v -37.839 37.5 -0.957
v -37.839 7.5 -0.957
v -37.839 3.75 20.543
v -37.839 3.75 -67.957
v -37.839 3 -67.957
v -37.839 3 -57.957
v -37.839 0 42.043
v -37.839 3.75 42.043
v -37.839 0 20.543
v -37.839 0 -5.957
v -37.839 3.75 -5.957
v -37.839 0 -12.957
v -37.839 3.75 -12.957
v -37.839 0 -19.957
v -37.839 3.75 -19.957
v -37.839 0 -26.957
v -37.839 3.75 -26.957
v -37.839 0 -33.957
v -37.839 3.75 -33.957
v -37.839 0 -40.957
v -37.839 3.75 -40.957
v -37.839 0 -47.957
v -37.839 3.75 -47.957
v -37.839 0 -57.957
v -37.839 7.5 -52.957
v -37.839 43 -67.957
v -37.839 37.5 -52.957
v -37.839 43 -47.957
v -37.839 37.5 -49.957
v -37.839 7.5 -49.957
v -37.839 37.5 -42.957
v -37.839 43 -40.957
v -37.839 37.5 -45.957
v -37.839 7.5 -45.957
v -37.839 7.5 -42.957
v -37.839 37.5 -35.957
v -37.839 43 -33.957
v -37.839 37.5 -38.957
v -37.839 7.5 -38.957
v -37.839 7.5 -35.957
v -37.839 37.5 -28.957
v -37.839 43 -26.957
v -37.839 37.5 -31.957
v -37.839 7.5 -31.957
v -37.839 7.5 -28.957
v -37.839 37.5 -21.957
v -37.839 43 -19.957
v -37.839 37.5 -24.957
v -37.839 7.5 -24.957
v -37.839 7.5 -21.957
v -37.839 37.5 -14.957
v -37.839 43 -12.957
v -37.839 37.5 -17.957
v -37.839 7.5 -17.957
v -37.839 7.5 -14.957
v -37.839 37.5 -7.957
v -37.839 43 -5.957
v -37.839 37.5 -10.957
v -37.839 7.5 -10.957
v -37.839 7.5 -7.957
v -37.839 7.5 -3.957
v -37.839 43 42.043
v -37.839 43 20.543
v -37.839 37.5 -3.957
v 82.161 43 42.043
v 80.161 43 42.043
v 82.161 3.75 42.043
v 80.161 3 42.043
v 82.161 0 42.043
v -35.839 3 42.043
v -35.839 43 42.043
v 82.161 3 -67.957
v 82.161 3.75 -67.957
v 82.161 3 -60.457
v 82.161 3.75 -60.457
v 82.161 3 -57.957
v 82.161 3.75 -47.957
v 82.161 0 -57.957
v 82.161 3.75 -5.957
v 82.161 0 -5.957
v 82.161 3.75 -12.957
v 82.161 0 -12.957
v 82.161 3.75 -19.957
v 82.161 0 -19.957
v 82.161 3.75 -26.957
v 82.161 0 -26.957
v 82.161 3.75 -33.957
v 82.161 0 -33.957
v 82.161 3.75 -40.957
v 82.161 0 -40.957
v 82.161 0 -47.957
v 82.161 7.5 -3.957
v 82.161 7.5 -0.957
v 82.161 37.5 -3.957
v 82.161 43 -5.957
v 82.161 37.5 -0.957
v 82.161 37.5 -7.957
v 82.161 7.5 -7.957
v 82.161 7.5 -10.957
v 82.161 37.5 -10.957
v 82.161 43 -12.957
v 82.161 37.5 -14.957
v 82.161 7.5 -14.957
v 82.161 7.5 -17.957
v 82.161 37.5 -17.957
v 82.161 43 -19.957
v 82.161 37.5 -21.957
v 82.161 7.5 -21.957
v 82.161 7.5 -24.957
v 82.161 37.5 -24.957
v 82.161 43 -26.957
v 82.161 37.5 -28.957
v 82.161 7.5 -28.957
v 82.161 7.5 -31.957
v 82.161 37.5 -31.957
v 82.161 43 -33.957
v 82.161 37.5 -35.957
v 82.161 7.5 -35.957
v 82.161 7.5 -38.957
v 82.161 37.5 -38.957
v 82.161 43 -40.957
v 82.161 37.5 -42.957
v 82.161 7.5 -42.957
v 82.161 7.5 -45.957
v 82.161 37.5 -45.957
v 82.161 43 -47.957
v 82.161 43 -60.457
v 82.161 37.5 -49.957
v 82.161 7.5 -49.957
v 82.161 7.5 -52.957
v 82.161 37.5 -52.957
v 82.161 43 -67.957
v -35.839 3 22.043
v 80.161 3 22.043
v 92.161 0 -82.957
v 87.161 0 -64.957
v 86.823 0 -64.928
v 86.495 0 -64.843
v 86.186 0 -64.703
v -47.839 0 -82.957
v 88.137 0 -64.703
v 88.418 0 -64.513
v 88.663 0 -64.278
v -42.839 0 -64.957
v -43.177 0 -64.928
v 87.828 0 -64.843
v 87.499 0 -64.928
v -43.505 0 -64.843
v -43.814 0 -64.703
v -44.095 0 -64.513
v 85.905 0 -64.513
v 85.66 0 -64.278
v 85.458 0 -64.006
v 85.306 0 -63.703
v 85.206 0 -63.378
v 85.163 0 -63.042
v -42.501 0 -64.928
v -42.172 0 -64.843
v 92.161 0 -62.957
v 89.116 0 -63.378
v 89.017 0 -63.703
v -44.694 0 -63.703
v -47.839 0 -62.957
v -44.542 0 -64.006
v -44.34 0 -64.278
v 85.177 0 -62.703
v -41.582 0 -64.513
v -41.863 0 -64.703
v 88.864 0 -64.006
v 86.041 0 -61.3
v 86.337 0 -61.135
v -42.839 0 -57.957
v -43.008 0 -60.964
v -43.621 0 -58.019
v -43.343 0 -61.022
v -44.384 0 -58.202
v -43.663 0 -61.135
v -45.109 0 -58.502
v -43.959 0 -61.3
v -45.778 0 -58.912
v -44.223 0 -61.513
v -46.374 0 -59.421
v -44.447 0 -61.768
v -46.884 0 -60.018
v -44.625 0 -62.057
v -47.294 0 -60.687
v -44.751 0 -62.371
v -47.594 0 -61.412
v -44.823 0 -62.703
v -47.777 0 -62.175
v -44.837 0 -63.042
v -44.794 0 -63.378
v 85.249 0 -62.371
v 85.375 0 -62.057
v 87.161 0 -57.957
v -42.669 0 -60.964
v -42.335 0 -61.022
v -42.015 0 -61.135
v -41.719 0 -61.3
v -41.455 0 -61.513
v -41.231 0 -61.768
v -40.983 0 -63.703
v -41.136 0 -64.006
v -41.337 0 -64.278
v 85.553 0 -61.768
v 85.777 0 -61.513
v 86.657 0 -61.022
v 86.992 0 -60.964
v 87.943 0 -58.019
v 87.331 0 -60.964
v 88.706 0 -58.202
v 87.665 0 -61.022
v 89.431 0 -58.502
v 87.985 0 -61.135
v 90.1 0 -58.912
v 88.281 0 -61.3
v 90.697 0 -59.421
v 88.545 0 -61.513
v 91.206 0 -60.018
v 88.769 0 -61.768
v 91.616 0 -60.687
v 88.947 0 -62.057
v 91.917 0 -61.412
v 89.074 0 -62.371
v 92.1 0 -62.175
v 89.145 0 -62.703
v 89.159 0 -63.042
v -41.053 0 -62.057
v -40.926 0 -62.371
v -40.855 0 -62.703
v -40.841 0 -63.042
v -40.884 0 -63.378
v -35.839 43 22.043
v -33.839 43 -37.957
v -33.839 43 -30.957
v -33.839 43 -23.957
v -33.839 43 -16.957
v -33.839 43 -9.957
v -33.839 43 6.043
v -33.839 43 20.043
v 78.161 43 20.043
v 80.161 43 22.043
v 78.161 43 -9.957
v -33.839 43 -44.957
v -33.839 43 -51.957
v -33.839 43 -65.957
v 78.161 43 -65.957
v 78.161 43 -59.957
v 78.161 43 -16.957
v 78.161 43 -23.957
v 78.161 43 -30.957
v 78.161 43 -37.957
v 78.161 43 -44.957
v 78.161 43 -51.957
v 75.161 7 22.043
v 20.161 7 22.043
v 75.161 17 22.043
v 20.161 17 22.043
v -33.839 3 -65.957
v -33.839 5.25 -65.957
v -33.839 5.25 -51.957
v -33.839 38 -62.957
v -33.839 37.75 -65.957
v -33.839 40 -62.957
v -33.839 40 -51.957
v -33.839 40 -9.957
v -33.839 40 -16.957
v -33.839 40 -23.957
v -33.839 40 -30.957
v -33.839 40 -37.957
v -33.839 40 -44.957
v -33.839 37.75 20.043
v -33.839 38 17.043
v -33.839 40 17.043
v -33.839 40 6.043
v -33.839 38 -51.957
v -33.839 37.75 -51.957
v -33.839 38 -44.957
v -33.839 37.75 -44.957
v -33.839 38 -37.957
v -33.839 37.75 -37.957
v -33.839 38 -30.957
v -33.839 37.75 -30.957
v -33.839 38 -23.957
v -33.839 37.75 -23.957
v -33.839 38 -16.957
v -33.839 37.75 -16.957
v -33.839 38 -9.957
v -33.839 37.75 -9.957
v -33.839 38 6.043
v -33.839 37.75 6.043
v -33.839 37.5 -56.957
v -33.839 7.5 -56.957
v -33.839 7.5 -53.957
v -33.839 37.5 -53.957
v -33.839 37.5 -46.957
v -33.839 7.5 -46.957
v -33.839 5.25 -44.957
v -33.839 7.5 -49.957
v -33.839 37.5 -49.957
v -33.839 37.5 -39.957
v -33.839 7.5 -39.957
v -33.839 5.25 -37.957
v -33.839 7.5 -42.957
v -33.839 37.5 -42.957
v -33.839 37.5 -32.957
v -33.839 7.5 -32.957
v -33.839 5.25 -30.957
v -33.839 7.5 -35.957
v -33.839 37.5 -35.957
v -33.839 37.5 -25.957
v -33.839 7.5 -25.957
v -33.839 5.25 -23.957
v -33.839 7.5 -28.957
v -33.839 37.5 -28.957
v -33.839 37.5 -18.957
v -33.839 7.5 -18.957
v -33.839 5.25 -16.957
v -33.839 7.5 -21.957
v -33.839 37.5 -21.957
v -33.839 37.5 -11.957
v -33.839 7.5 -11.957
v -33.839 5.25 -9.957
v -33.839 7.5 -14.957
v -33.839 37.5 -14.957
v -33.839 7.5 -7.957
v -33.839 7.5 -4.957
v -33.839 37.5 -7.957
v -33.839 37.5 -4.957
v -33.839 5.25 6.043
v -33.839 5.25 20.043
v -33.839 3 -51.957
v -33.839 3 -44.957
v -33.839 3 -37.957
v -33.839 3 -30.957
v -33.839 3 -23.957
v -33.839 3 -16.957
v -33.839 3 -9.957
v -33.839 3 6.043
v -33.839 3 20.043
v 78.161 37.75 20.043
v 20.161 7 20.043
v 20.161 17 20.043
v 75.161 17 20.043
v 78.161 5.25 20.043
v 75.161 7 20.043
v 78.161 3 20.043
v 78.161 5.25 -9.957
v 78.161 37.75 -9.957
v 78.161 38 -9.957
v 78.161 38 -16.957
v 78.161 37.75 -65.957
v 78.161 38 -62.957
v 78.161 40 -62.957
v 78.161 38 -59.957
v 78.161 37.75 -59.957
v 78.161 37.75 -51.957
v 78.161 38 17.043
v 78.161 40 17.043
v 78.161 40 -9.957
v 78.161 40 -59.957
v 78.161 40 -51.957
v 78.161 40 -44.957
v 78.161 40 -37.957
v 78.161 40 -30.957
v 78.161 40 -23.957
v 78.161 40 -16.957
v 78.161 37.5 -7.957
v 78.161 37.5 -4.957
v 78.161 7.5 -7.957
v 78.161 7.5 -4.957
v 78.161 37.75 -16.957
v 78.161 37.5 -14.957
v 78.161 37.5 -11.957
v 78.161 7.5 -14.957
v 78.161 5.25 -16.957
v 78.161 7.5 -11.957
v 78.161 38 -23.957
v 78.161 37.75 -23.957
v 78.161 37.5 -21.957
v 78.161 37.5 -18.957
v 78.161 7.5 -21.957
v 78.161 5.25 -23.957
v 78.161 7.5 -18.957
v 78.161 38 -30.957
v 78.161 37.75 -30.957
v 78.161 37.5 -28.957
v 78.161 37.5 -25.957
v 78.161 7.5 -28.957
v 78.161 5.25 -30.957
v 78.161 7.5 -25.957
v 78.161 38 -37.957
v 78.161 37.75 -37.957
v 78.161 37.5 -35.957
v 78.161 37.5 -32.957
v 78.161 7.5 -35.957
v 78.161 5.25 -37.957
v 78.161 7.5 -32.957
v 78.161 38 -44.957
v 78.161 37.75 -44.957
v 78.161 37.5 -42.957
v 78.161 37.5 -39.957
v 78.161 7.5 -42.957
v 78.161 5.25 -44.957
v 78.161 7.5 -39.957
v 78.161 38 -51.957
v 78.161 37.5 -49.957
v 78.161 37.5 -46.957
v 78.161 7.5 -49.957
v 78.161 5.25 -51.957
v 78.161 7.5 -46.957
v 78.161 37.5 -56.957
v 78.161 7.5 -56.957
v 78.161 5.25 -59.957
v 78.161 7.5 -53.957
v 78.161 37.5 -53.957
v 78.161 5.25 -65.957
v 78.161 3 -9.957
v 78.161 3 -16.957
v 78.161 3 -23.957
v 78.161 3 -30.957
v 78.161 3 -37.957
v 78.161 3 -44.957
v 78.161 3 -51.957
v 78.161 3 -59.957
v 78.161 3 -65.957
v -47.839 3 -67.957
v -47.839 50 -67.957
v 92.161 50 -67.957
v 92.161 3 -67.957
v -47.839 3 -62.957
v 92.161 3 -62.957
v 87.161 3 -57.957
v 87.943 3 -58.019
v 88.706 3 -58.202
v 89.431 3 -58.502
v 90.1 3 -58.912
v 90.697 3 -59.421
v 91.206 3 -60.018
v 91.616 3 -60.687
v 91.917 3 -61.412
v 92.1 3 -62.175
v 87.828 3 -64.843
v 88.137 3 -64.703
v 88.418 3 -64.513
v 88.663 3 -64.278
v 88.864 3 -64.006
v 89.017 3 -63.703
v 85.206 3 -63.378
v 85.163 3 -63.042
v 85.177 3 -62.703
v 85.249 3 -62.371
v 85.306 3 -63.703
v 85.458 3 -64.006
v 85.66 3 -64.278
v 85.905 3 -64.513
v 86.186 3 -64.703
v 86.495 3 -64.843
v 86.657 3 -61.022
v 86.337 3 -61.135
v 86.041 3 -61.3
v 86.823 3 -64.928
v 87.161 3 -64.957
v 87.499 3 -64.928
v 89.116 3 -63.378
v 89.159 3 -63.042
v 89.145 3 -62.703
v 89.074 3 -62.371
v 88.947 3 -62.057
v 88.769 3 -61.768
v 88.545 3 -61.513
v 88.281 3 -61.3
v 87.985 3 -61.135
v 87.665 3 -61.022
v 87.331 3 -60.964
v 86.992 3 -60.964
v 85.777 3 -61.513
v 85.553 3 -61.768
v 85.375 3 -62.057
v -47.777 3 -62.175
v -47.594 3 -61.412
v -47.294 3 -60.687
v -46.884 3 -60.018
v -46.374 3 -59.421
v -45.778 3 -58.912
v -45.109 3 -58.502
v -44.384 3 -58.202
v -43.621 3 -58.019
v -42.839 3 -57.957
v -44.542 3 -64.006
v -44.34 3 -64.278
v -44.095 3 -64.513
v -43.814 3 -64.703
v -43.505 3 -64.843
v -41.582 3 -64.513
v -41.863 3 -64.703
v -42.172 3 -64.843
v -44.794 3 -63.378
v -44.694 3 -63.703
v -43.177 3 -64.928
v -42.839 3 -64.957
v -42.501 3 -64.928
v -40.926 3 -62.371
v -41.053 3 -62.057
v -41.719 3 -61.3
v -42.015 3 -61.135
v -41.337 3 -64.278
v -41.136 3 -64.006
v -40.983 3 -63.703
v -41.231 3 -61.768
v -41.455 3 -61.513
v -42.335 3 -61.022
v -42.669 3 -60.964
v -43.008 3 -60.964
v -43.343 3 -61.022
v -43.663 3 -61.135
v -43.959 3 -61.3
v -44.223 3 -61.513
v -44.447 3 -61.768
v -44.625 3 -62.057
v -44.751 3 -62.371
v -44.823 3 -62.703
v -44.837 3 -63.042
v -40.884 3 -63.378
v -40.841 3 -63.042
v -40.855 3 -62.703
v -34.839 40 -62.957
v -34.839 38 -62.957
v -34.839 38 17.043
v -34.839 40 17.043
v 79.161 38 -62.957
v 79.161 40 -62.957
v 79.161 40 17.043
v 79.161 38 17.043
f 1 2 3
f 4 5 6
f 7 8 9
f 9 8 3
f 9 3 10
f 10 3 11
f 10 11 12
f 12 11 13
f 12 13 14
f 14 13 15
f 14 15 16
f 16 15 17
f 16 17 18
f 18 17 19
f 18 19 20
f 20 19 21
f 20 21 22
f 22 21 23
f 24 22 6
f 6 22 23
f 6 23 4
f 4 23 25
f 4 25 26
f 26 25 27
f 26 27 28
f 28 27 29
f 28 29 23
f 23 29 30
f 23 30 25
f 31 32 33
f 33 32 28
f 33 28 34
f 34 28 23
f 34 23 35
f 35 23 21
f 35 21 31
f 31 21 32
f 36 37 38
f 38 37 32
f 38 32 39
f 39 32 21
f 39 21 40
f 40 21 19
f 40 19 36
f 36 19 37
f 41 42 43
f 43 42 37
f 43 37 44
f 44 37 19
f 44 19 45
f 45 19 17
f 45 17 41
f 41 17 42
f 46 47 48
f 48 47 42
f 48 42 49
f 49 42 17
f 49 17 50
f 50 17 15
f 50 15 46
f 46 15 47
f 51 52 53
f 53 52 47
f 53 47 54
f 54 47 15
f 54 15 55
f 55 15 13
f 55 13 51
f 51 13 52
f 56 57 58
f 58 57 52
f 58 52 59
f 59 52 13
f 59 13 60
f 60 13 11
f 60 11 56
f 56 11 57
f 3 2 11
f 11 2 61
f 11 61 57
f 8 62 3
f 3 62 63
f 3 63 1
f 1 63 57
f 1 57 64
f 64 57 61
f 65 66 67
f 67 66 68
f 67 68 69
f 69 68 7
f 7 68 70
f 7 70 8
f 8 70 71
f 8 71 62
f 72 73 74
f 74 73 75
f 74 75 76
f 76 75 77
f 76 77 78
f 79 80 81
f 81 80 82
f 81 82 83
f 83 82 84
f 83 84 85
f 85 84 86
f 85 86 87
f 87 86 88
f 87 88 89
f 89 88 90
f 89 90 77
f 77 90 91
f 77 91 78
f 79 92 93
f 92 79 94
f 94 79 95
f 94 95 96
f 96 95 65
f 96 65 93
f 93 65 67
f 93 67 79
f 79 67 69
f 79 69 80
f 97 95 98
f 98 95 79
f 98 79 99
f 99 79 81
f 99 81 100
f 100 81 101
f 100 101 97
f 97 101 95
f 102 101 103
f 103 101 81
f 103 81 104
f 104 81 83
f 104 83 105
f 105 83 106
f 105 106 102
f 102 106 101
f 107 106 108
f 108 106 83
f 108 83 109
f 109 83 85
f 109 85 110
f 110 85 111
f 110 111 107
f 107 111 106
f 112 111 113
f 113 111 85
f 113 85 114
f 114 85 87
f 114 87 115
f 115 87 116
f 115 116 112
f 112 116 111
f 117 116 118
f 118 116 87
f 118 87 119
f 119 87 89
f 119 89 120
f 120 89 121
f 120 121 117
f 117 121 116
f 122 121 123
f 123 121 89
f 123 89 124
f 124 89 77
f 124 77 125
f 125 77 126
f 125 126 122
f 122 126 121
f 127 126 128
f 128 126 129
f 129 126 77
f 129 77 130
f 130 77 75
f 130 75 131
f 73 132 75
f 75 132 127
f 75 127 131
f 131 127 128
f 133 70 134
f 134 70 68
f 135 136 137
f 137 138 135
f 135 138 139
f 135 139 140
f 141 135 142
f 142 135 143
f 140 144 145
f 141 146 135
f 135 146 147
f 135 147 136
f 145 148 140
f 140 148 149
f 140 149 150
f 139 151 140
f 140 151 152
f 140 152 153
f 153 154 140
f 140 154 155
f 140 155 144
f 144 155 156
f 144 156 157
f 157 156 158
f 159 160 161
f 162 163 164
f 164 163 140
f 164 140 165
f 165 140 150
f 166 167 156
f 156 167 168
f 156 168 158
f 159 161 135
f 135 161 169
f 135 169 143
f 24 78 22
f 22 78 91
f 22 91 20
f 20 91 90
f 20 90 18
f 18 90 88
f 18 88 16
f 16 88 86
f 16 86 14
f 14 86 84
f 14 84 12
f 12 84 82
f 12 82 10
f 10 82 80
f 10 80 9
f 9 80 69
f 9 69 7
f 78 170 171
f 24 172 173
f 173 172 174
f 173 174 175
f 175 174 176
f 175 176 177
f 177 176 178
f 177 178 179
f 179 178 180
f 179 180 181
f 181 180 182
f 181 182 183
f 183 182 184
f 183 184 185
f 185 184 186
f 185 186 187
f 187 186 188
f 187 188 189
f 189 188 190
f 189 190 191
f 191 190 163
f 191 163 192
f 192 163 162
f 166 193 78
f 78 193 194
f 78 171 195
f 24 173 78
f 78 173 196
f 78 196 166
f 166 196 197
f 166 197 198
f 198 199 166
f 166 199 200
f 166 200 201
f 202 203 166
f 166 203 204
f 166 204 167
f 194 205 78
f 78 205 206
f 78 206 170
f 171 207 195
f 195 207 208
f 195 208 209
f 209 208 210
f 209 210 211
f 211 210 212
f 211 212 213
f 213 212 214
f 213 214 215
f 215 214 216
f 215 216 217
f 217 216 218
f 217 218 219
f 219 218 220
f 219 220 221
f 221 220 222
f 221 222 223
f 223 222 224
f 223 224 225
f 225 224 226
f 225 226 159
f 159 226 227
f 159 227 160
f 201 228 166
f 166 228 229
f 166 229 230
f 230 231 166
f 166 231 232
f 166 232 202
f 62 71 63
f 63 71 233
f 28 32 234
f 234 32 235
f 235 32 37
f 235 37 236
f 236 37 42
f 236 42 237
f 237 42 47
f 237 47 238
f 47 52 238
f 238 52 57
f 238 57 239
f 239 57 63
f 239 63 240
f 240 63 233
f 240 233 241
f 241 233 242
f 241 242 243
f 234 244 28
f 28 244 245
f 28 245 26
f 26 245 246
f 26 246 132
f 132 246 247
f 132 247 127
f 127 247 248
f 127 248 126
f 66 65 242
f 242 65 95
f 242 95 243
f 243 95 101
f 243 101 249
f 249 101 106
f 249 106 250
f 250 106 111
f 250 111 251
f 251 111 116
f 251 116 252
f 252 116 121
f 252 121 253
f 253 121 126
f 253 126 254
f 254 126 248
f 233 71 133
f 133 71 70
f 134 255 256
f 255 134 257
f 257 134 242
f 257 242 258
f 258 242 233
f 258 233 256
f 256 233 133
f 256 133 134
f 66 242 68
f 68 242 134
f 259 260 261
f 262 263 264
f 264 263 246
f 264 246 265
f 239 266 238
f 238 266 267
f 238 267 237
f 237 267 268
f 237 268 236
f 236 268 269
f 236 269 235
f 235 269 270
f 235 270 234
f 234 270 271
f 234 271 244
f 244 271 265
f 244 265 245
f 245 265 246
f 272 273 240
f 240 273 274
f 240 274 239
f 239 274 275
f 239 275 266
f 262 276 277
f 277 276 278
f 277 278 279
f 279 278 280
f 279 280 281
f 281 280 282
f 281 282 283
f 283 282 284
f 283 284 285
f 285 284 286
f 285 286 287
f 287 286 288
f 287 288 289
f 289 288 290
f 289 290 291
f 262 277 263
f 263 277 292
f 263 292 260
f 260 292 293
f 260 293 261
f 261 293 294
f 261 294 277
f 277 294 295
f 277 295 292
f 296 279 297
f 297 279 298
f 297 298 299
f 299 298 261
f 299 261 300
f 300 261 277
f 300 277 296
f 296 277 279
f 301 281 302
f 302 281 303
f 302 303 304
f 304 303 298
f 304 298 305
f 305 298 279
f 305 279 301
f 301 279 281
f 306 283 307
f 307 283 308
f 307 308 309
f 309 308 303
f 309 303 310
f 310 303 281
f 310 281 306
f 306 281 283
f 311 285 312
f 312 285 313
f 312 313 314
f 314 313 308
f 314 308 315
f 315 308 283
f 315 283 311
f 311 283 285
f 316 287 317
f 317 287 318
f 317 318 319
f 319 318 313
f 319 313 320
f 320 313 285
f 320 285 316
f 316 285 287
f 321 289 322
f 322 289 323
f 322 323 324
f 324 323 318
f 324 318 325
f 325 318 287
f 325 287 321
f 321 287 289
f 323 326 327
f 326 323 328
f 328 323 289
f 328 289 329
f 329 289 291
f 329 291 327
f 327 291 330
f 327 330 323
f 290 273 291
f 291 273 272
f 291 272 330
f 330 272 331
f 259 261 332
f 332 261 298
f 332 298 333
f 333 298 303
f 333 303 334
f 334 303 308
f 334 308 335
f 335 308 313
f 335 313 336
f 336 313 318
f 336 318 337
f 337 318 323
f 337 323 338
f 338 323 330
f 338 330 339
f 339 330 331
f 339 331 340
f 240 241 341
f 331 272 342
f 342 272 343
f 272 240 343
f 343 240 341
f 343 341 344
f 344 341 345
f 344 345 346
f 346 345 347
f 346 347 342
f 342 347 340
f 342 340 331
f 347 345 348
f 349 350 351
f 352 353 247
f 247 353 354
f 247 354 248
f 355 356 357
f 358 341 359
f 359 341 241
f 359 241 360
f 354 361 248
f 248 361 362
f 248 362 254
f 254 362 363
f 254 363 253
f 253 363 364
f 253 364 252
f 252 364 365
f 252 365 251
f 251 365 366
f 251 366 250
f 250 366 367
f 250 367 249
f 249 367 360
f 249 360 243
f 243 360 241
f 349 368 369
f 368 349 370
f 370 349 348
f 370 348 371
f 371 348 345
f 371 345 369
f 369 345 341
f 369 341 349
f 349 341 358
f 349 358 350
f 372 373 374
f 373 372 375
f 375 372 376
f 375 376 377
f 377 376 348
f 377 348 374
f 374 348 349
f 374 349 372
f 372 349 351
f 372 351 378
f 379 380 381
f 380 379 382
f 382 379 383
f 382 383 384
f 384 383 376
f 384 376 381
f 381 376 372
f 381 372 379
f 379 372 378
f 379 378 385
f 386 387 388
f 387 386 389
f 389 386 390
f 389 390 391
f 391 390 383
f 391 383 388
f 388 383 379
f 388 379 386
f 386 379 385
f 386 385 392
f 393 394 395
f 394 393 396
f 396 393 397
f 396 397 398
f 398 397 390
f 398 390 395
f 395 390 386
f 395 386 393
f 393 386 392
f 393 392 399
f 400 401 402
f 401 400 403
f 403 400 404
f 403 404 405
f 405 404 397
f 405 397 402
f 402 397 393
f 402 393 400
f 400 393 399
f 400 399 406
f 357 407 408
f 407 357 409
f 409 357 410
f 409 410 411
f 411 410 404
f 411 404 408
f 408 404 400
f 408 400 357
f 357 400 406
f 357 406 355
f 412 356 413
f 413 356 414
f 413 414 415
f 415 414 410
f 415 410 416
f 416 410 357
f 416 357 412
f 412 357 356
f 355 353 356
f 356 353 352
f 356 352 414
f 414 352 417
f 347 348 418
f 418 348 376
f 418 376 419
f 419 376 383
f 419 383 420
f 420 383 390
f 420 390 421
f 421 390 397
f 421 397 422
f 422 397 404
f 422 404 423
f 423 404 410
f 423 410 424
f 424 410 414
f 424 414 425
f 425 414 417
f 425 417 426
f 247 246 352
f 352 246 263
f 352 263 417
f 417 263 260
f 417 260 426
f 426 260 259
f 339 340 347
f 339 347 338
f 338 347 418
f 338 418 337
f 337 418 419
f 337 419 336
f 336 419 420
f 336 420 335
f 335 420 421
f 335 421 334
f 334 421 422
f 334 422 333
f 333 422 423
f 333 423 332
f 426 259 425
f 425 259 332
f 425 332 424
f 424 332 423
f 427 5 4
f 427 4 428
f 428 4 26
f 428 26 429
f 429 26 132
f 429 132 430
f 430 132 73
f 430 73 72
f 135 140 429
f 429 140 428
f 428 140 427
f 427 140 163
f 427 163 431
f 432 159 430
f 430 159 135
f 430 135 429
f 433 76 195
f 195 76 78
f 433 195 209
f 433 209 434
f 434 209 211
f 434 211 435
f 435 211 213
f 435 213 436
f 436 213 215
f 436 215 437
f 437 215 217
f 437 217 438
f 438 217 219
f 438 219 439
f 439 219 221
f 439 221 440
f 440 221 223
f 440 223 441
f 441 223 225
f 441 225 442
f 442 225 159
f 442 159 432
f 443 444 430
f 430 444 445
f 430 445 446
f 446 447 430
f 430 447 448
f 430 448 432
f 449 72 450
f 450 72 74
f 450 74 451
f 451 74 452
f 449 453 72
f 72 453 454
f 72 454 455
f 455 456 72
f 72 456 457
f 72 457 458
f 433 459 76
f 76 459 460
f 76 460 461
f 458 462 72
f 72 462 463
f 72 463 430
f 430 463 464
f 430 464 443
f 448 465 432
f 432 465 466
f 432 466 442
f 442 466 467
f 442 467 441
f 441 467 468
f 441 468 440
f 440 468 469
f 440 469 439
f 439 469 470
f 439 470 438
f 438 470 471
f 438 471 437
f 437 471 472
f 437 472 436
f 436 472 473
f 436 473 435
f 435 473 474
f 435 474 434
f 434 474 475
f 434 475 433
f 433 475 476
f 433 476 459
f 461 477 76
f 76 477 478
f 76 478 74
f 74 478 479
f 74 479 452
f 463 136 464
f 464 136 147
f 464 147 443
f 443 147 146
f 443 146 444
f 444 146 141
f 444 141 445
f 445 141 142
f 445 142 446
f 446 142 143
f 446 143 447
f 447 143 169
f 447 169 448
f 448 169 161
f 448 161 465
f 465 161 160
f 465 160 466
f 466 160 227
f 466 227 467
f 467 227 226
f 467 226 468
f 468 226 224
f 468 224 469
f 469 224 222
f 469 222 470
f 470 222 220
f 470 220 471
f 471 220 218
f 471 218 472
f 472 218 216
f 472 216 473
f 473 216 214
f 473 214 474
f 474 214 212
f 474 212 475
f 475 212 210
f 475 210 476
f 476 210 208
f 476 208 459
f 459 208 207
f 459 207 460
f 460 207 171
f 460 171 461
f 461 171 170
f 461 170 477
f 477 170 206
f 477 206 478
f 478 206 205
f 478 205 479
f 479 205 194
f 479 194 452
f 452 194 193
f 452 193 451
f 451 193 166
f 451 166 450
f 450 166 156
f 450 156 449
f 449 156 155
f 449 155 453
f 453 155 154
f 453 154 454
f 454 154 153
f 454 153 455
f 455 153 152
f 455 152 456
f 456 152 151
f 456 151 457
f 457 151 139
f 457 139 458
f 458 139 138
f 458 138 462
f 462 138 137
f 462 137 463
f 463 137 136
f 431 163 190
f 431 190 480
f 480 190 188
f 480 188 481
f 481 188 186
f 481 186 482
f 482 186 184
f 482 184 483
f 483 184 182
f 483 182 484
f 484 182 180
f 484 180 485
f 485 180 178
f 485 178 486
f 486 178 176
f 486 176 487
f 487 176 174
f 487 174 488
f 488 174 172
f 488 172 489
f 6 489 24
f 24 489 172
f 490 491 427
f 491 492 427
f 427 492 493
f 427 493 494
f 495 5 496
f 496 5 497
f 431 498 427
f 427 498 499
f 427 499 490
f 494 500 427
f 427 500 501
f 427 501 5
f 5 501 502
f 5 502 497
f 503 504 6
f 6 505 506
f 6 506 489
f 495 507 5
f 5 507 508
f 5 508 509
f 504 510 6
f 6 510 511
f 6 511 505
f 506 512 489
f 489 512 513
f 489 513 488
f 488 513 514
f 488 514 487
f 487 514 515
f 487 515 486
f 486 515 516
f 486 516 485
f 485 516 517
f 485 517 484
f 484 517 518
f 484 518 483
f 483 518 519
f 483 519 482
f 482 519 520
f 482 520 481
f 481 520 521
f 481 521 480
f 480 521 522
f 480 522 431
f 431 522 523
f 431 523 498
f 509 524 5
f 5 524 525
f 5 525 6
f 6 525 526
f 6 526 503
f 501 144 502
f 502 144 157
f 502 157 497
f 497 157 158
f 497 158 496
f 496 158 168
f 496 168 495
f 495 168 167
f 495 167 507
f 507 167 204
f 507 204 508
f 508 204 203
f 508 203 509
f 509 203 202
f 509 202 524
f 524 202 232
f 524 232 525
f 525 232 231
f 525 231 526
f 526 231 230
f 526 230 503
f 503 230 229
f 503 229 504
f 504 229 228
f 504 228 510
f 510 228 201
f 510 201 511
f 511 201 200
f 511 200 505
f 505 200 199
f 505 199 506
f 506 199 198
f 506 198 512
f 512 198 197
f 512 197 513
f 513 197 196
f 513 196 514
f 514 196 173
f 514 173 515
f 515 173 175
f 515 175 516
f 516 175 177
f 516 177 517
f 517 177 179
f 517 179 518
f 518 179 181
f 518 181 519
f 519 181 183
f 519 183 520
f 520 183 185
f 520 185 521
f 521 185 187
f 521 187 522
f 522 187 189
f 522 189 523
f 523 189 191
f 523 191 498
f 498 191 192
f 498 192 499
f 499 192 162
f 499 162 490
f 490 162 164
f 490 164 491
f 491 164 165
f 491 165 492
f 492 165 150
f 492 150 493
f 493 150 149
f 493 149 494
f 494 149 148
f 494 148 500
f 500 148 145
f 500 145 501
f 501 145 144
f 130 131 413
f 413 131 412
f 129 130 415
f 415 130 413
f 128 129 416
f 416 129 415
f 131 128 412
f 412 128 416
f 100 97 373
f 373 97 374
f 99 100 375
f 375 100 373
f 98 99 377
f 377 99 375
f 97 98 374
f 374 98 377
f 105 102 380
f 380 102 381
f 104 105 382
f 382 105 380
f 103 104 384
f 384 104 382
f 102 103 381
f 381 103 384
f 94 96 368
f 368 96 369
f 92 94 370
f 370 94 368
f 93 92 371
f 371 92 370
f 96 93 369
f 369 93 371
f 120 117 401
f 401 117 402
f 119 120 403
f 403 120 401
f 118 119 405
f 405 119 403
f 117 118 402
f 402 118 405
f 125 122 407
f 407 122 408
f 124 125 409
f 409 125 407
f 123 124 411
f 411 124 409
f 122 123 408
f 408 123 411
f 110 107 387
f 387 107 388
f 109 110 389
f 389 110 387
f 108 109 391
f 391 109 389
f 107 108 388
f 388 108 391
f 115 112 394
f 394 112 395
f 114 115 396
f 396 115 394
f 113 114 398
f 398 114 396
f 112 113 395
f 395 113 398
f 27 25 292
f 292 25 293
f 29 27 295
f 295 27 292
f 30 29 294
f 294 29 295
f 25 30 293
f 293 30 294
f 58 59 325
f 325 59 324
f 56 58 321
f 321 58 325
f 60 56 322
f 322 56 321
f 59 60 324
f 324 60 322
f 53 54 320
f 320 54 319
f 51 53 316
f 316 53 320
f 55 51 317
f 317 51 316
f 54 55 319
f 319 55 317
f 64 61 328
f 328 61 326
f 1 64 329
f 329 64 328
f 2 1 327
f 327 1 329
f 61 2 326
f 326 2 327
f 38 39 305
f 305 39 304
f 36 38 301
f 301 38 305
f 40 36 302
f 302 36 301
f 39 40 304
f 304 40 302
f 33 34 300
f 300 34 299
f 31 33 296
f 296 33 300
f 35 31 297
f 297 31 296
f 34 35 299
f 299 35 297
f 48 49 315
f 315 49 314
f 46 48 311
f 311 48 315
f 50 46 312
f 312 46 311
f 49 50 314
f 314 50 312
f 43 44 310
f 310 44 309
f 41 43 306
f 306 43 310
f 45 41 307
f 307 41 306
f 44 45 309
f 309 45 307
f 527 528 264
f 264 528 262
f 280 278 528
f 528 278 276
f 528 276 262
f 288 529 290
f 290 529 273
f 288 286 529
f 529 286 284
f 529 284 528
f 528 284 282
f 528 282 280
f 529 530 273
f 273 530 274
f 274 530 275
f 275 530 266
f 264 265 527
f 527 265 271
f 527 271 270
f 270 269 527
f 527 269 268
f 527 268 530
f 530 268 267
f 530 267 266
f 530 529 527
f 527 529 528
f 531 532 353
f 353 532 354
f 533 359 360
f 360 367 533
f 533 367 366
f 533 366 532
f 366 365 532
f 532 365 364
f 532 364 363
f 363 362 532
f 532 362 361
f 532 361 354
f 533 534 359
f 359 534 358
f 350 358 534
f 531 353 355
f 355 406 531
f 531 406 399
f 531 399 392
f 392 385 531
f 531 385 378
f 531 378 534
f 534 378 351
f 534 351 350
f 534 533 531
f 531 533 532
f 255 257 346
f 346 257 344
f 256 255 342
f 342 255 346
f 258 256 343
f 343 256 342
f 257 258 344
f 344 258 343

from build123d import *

# Parameters (mm, degrees)
SKETCH1_W                       = 120
SKETCH1_H                       = 110
BOSS_EXTRUDE1_DEPTH             = 3
SKETCH2_W                       = 112
SKETCH2_H                       = 86
BOSS_EXTRUDE2_DEPTH             = 40
BOSS_EXTRUDE3_DEPTH             = 10
BOSS_EXTRUDE3_DEPTH_BACK        = 130
SKIZZE2_R                       = 2
AUFSATZ_LINEAR_AUSTRAGEN1_DEPTH = 3
SKIZZE3_W                       = 3
SKIZZE3_H                       = 30
SCHNITT_LINEAR_AUSTRAGEN1_DEPTH = 13
SKIZZE8_W                       = 3
SKIZZE8_H                       = 30
SCHNITT_LINEAR_AUSTRAGEN2_DEPTH = 13
SKIZZE10_W                      = 80
SKIZZE10_H                      = 2
SCHNITT_LINEAR_AUSTRAGEN3_DEPTH = 1
SKIZZE11_W                      = 80
SKIZZE11_H                      = 2
SCHNITT_LINEAR_AUSTRAGEN4_DEPTH = 1
SKIZZE12_W                      = 55
SKIZZE12_H                      = 10
SCHNITT_LINEAR_AUSTRAGEN5_DEPTH = 31


with BuildPart() as part:
    # Sketch1 → Boss-Extrude1 (new body)
    with BuildSketch(Plane(origin=(0, 0, 0), x_dir=(1, 0, 0), z_dir=(0, 1, 0))):
        with Locations((22.161290323, 12.956989247)):
            Rectangle(SKETCH1_W, SKETCH1_H)
    extrude(amount=BOSS_EXTRUDE1_DEPTH)

    # Sketch2 → Boss-Extrude2 (add)
    with BuildSketch(Plane(origin=(0, 3, 0), x_dir=(1, 0, 0), z_dir=(0, 1, 0))):
        Polygon((-37.838709677, 67.956989247), (-37.838709677, -42.043010753), (-35.838709677, -42.043010753), (-35.838709677, -22.043010753), (80.161290323, -22.043010753), (80.161290323, -42.043010753), (82.161290323, -42.043010753), (82.161290323, 67.956989247), align=None)
        with Locations((22.161290323, 22.956989247)):
            Rectangle(SKETCH2_W, SKETCH2_H, mode=Mode.SUBTRACT)
    extrude(amount=BOSS_EXTRUDE2_DEPTH)

    # Sketch3 → Boss-Extrude3 (add, two sides: drawn at the far end of the back side and taken through both)
    with BuildSketch(Plane(origin=(82.161290323, 0, 0), x_dir=(0, 0, -1), z_dir=(1, 0, 0)).offset(-BOSS_EXTRUDE3_DEPTH_BACK)):
        Polygon((67.956989247, 50), (82.956989247, 0), (67.956989247, 0), align=None)
    extrude(amount=BOSS_EXTRUDE3_DEPTH + BOSS_EXTRUDE3_DEPTH_BACK)

    # Skizze2 → Aufsatz-Linear austragen1 (add)
    # profile 1 of 2: a face of its own
    with BuildSketch(Plane.XZ):
        with BuildLine():
            Line((82.161290323, -67.956989247), (92.161290323, -67.956989247))
            Line((92.161290323, -67.956989247), (92.161290323, -62.956989247))
            ThreePointArc((92.161290323, -62.956989247), (90.696824229, -59.421455341), (87.161290323, -57.956989247))
            Line((87.161290323, -57.956989247), (82.161290323, -57.956989247))
            Line((82.161290323, -57.956989247), (82.161290323, -67.956989247))
        make_face()
        with Locations(Location((87.161290323, -62.956989247, 0), (0, 0, 270))):
            Circle(SKIZZE2_R, mode=Mode.SUBTRACT)
    # profile 2 of 2: a face of its own
    with BuildSketch(Plane.XZ):
        with BuildLine():
            Line((-37.838709677, -67.956989247), (-47.838709677, -67.956989247))
            Line((-47.838709677, -67.956989247), (-47.838709677, -62.956989247))
            ThreePointArc((-47.838709677, -62.956989247), (-46.374243583, -59.421455341), (-42.838709677, -57.956989247))
            Line((-42.838709677, -57.956989247), (-37.838709677, -57.956989247))
            Line((-37.838709677, -57.956989247), (-37.838709677, -67.956989247))
        make_face()
        with Locations(Location((-42.838709677, -62.956989247, 0), (0, 0, 270))):
            Circle(SKIZZE2_R, mode=Mode.SUBTRACT)
    extrude(amount=-AUFSATZ_LINEAR_AUSTRAGEN1_DEPTH)

    # Skizze3 → Schnitt-Linear austragen1 (cut, along a direction that is not the sketch's normal)
    with BuildSketch(Plane(origin=(82.161290323, 0, 0), x_dir=(0, 0, -1), z_dir=(1, 0, 0))):
        with Locations((51.456989247, 22.5)):
            Rectangle(SKIZZE3_W, SKIZZE3_H)
        with Locations((44.456989247, 22.5)):
            Rectangle(SKIZZE3_W, SKIZZE3_H)
        with Locations((37.456989247, 22.5)):
            Rectangle(SKIZZE3_W, SKIZZE3_H)
        with Locations((30.456989247, 22.5)):
            Rectangle(SKIZZE3_W, SKIZZE3_H)
        with Locations((23.456989247, 22.5)):
            Rectangle(SKIZZE3_W, SKIZZE3_H)
        with Locations((16.456989247, 22.5)):
            Rectangle(SKIZZE3_W, SKIZZE3_H)
        with Locations((9.456989247, 22.5)):
            Rectangle(SKIZZE3_W, SKIZZE3_H)
        with Locations((2.456989247, 22.5)):
            Rectangle(SKIZZE3_W, SKIZZE3_H)
    extrude(amount=-SCHNITT_LINEAR_AUSTRAGEN1_DEPTH, dir=(0.7071067811865519, 0, 0.7071067811865432), mode=Mode.SUBTRACT)

    # Skizze8 → Schnitt-Linear austragen2 (cut, along a direction that is not the sketch's normal)
    with BuildSketch(Plane.ZY.offset(37.838709677)):
        with Locations((-51.456989247, 22.5)):
            Rectangle(SKIZZE8_W, SKIZZE8_H)
        with Locations((-44.456989247, 22.5)):
            Rectangle(SKIZZE8_W, SKIZZE8_H)
        with Locations((-37.456989247, 22.5)):
            Rectangle(SKIZZE8_W, SKIZZE8_H)
        with Locations((-30.456989247, 22.5)):
            Rectangle(SKIZZE8_W, SKIZZE8_H)
        with Locations((-23.456989247, 22.5)):
            Rectangle(SKIZZE8_W, SKIZZE8_H)
        with Locations((-16.456989247, 22.5)):
            Rectangle(SKIZZE8_W, SKIZZE8_H)
        with Locations((-9.456989247, 22.5)):
            Rectangle(SKIZZE8_W, SKIZZE8_H)
        with Locations((-2.456989247, 22.5)):
            Rectangle(SKIZZE8_W, SKIZZE8_H)
    extrude(amount=-SCHNITT_LINEAR_AUSTRAGEN2_DEPTH, dir=(-0.7071067811865462, 0, 0.7071067811865488), mode=Mode.SUBTRACT)

    # Skizze10 → Schnitt-Linear austragen3 (cut)
    with BuildSketch(Plane(origin=(-33.838709677, 0, 0), x_dir=(0, 0, -1), z_dir=(1, 0, 0))):
        with Locations((22.956989247, 39)):
            Rectangle(SKIZZE10_W, SKIZZE10_H)
    extrude(amount=-SCHNITT_LINEAR_AUSTRAGEN3_DEPTH, mode=Mode.SUBTRACT)

    # Skizze11 → Schnitt-Linear austragen4 (cut)
    with BuildSketch(Plane.ZY.offset(-78.161290323)):
        with Locations((-22.956989247, 39)):
            Rectangle(SKIZZE11_W, SKIZZE11_H)
    extrude(amount=-SCHNITT_LINEAR_AUSTRAGEN4_DEPTH, mode=Mode.SUBTRACT)

    # Skizze12 → Schnitt-Linear austragen5 (cut)
    with BuildSketch(Plane.XY.offset(22.043010753)):
        with Locations((47.661290323, 12)):
            Rectangle(SKIZZE12_W, SKIZZE12_H)
    extrude(amount=-SCHNITT_LINEAR_AUSTRAGEN5_DEPTH, mode=Mode.SUBTRACT)


solid = part.part
